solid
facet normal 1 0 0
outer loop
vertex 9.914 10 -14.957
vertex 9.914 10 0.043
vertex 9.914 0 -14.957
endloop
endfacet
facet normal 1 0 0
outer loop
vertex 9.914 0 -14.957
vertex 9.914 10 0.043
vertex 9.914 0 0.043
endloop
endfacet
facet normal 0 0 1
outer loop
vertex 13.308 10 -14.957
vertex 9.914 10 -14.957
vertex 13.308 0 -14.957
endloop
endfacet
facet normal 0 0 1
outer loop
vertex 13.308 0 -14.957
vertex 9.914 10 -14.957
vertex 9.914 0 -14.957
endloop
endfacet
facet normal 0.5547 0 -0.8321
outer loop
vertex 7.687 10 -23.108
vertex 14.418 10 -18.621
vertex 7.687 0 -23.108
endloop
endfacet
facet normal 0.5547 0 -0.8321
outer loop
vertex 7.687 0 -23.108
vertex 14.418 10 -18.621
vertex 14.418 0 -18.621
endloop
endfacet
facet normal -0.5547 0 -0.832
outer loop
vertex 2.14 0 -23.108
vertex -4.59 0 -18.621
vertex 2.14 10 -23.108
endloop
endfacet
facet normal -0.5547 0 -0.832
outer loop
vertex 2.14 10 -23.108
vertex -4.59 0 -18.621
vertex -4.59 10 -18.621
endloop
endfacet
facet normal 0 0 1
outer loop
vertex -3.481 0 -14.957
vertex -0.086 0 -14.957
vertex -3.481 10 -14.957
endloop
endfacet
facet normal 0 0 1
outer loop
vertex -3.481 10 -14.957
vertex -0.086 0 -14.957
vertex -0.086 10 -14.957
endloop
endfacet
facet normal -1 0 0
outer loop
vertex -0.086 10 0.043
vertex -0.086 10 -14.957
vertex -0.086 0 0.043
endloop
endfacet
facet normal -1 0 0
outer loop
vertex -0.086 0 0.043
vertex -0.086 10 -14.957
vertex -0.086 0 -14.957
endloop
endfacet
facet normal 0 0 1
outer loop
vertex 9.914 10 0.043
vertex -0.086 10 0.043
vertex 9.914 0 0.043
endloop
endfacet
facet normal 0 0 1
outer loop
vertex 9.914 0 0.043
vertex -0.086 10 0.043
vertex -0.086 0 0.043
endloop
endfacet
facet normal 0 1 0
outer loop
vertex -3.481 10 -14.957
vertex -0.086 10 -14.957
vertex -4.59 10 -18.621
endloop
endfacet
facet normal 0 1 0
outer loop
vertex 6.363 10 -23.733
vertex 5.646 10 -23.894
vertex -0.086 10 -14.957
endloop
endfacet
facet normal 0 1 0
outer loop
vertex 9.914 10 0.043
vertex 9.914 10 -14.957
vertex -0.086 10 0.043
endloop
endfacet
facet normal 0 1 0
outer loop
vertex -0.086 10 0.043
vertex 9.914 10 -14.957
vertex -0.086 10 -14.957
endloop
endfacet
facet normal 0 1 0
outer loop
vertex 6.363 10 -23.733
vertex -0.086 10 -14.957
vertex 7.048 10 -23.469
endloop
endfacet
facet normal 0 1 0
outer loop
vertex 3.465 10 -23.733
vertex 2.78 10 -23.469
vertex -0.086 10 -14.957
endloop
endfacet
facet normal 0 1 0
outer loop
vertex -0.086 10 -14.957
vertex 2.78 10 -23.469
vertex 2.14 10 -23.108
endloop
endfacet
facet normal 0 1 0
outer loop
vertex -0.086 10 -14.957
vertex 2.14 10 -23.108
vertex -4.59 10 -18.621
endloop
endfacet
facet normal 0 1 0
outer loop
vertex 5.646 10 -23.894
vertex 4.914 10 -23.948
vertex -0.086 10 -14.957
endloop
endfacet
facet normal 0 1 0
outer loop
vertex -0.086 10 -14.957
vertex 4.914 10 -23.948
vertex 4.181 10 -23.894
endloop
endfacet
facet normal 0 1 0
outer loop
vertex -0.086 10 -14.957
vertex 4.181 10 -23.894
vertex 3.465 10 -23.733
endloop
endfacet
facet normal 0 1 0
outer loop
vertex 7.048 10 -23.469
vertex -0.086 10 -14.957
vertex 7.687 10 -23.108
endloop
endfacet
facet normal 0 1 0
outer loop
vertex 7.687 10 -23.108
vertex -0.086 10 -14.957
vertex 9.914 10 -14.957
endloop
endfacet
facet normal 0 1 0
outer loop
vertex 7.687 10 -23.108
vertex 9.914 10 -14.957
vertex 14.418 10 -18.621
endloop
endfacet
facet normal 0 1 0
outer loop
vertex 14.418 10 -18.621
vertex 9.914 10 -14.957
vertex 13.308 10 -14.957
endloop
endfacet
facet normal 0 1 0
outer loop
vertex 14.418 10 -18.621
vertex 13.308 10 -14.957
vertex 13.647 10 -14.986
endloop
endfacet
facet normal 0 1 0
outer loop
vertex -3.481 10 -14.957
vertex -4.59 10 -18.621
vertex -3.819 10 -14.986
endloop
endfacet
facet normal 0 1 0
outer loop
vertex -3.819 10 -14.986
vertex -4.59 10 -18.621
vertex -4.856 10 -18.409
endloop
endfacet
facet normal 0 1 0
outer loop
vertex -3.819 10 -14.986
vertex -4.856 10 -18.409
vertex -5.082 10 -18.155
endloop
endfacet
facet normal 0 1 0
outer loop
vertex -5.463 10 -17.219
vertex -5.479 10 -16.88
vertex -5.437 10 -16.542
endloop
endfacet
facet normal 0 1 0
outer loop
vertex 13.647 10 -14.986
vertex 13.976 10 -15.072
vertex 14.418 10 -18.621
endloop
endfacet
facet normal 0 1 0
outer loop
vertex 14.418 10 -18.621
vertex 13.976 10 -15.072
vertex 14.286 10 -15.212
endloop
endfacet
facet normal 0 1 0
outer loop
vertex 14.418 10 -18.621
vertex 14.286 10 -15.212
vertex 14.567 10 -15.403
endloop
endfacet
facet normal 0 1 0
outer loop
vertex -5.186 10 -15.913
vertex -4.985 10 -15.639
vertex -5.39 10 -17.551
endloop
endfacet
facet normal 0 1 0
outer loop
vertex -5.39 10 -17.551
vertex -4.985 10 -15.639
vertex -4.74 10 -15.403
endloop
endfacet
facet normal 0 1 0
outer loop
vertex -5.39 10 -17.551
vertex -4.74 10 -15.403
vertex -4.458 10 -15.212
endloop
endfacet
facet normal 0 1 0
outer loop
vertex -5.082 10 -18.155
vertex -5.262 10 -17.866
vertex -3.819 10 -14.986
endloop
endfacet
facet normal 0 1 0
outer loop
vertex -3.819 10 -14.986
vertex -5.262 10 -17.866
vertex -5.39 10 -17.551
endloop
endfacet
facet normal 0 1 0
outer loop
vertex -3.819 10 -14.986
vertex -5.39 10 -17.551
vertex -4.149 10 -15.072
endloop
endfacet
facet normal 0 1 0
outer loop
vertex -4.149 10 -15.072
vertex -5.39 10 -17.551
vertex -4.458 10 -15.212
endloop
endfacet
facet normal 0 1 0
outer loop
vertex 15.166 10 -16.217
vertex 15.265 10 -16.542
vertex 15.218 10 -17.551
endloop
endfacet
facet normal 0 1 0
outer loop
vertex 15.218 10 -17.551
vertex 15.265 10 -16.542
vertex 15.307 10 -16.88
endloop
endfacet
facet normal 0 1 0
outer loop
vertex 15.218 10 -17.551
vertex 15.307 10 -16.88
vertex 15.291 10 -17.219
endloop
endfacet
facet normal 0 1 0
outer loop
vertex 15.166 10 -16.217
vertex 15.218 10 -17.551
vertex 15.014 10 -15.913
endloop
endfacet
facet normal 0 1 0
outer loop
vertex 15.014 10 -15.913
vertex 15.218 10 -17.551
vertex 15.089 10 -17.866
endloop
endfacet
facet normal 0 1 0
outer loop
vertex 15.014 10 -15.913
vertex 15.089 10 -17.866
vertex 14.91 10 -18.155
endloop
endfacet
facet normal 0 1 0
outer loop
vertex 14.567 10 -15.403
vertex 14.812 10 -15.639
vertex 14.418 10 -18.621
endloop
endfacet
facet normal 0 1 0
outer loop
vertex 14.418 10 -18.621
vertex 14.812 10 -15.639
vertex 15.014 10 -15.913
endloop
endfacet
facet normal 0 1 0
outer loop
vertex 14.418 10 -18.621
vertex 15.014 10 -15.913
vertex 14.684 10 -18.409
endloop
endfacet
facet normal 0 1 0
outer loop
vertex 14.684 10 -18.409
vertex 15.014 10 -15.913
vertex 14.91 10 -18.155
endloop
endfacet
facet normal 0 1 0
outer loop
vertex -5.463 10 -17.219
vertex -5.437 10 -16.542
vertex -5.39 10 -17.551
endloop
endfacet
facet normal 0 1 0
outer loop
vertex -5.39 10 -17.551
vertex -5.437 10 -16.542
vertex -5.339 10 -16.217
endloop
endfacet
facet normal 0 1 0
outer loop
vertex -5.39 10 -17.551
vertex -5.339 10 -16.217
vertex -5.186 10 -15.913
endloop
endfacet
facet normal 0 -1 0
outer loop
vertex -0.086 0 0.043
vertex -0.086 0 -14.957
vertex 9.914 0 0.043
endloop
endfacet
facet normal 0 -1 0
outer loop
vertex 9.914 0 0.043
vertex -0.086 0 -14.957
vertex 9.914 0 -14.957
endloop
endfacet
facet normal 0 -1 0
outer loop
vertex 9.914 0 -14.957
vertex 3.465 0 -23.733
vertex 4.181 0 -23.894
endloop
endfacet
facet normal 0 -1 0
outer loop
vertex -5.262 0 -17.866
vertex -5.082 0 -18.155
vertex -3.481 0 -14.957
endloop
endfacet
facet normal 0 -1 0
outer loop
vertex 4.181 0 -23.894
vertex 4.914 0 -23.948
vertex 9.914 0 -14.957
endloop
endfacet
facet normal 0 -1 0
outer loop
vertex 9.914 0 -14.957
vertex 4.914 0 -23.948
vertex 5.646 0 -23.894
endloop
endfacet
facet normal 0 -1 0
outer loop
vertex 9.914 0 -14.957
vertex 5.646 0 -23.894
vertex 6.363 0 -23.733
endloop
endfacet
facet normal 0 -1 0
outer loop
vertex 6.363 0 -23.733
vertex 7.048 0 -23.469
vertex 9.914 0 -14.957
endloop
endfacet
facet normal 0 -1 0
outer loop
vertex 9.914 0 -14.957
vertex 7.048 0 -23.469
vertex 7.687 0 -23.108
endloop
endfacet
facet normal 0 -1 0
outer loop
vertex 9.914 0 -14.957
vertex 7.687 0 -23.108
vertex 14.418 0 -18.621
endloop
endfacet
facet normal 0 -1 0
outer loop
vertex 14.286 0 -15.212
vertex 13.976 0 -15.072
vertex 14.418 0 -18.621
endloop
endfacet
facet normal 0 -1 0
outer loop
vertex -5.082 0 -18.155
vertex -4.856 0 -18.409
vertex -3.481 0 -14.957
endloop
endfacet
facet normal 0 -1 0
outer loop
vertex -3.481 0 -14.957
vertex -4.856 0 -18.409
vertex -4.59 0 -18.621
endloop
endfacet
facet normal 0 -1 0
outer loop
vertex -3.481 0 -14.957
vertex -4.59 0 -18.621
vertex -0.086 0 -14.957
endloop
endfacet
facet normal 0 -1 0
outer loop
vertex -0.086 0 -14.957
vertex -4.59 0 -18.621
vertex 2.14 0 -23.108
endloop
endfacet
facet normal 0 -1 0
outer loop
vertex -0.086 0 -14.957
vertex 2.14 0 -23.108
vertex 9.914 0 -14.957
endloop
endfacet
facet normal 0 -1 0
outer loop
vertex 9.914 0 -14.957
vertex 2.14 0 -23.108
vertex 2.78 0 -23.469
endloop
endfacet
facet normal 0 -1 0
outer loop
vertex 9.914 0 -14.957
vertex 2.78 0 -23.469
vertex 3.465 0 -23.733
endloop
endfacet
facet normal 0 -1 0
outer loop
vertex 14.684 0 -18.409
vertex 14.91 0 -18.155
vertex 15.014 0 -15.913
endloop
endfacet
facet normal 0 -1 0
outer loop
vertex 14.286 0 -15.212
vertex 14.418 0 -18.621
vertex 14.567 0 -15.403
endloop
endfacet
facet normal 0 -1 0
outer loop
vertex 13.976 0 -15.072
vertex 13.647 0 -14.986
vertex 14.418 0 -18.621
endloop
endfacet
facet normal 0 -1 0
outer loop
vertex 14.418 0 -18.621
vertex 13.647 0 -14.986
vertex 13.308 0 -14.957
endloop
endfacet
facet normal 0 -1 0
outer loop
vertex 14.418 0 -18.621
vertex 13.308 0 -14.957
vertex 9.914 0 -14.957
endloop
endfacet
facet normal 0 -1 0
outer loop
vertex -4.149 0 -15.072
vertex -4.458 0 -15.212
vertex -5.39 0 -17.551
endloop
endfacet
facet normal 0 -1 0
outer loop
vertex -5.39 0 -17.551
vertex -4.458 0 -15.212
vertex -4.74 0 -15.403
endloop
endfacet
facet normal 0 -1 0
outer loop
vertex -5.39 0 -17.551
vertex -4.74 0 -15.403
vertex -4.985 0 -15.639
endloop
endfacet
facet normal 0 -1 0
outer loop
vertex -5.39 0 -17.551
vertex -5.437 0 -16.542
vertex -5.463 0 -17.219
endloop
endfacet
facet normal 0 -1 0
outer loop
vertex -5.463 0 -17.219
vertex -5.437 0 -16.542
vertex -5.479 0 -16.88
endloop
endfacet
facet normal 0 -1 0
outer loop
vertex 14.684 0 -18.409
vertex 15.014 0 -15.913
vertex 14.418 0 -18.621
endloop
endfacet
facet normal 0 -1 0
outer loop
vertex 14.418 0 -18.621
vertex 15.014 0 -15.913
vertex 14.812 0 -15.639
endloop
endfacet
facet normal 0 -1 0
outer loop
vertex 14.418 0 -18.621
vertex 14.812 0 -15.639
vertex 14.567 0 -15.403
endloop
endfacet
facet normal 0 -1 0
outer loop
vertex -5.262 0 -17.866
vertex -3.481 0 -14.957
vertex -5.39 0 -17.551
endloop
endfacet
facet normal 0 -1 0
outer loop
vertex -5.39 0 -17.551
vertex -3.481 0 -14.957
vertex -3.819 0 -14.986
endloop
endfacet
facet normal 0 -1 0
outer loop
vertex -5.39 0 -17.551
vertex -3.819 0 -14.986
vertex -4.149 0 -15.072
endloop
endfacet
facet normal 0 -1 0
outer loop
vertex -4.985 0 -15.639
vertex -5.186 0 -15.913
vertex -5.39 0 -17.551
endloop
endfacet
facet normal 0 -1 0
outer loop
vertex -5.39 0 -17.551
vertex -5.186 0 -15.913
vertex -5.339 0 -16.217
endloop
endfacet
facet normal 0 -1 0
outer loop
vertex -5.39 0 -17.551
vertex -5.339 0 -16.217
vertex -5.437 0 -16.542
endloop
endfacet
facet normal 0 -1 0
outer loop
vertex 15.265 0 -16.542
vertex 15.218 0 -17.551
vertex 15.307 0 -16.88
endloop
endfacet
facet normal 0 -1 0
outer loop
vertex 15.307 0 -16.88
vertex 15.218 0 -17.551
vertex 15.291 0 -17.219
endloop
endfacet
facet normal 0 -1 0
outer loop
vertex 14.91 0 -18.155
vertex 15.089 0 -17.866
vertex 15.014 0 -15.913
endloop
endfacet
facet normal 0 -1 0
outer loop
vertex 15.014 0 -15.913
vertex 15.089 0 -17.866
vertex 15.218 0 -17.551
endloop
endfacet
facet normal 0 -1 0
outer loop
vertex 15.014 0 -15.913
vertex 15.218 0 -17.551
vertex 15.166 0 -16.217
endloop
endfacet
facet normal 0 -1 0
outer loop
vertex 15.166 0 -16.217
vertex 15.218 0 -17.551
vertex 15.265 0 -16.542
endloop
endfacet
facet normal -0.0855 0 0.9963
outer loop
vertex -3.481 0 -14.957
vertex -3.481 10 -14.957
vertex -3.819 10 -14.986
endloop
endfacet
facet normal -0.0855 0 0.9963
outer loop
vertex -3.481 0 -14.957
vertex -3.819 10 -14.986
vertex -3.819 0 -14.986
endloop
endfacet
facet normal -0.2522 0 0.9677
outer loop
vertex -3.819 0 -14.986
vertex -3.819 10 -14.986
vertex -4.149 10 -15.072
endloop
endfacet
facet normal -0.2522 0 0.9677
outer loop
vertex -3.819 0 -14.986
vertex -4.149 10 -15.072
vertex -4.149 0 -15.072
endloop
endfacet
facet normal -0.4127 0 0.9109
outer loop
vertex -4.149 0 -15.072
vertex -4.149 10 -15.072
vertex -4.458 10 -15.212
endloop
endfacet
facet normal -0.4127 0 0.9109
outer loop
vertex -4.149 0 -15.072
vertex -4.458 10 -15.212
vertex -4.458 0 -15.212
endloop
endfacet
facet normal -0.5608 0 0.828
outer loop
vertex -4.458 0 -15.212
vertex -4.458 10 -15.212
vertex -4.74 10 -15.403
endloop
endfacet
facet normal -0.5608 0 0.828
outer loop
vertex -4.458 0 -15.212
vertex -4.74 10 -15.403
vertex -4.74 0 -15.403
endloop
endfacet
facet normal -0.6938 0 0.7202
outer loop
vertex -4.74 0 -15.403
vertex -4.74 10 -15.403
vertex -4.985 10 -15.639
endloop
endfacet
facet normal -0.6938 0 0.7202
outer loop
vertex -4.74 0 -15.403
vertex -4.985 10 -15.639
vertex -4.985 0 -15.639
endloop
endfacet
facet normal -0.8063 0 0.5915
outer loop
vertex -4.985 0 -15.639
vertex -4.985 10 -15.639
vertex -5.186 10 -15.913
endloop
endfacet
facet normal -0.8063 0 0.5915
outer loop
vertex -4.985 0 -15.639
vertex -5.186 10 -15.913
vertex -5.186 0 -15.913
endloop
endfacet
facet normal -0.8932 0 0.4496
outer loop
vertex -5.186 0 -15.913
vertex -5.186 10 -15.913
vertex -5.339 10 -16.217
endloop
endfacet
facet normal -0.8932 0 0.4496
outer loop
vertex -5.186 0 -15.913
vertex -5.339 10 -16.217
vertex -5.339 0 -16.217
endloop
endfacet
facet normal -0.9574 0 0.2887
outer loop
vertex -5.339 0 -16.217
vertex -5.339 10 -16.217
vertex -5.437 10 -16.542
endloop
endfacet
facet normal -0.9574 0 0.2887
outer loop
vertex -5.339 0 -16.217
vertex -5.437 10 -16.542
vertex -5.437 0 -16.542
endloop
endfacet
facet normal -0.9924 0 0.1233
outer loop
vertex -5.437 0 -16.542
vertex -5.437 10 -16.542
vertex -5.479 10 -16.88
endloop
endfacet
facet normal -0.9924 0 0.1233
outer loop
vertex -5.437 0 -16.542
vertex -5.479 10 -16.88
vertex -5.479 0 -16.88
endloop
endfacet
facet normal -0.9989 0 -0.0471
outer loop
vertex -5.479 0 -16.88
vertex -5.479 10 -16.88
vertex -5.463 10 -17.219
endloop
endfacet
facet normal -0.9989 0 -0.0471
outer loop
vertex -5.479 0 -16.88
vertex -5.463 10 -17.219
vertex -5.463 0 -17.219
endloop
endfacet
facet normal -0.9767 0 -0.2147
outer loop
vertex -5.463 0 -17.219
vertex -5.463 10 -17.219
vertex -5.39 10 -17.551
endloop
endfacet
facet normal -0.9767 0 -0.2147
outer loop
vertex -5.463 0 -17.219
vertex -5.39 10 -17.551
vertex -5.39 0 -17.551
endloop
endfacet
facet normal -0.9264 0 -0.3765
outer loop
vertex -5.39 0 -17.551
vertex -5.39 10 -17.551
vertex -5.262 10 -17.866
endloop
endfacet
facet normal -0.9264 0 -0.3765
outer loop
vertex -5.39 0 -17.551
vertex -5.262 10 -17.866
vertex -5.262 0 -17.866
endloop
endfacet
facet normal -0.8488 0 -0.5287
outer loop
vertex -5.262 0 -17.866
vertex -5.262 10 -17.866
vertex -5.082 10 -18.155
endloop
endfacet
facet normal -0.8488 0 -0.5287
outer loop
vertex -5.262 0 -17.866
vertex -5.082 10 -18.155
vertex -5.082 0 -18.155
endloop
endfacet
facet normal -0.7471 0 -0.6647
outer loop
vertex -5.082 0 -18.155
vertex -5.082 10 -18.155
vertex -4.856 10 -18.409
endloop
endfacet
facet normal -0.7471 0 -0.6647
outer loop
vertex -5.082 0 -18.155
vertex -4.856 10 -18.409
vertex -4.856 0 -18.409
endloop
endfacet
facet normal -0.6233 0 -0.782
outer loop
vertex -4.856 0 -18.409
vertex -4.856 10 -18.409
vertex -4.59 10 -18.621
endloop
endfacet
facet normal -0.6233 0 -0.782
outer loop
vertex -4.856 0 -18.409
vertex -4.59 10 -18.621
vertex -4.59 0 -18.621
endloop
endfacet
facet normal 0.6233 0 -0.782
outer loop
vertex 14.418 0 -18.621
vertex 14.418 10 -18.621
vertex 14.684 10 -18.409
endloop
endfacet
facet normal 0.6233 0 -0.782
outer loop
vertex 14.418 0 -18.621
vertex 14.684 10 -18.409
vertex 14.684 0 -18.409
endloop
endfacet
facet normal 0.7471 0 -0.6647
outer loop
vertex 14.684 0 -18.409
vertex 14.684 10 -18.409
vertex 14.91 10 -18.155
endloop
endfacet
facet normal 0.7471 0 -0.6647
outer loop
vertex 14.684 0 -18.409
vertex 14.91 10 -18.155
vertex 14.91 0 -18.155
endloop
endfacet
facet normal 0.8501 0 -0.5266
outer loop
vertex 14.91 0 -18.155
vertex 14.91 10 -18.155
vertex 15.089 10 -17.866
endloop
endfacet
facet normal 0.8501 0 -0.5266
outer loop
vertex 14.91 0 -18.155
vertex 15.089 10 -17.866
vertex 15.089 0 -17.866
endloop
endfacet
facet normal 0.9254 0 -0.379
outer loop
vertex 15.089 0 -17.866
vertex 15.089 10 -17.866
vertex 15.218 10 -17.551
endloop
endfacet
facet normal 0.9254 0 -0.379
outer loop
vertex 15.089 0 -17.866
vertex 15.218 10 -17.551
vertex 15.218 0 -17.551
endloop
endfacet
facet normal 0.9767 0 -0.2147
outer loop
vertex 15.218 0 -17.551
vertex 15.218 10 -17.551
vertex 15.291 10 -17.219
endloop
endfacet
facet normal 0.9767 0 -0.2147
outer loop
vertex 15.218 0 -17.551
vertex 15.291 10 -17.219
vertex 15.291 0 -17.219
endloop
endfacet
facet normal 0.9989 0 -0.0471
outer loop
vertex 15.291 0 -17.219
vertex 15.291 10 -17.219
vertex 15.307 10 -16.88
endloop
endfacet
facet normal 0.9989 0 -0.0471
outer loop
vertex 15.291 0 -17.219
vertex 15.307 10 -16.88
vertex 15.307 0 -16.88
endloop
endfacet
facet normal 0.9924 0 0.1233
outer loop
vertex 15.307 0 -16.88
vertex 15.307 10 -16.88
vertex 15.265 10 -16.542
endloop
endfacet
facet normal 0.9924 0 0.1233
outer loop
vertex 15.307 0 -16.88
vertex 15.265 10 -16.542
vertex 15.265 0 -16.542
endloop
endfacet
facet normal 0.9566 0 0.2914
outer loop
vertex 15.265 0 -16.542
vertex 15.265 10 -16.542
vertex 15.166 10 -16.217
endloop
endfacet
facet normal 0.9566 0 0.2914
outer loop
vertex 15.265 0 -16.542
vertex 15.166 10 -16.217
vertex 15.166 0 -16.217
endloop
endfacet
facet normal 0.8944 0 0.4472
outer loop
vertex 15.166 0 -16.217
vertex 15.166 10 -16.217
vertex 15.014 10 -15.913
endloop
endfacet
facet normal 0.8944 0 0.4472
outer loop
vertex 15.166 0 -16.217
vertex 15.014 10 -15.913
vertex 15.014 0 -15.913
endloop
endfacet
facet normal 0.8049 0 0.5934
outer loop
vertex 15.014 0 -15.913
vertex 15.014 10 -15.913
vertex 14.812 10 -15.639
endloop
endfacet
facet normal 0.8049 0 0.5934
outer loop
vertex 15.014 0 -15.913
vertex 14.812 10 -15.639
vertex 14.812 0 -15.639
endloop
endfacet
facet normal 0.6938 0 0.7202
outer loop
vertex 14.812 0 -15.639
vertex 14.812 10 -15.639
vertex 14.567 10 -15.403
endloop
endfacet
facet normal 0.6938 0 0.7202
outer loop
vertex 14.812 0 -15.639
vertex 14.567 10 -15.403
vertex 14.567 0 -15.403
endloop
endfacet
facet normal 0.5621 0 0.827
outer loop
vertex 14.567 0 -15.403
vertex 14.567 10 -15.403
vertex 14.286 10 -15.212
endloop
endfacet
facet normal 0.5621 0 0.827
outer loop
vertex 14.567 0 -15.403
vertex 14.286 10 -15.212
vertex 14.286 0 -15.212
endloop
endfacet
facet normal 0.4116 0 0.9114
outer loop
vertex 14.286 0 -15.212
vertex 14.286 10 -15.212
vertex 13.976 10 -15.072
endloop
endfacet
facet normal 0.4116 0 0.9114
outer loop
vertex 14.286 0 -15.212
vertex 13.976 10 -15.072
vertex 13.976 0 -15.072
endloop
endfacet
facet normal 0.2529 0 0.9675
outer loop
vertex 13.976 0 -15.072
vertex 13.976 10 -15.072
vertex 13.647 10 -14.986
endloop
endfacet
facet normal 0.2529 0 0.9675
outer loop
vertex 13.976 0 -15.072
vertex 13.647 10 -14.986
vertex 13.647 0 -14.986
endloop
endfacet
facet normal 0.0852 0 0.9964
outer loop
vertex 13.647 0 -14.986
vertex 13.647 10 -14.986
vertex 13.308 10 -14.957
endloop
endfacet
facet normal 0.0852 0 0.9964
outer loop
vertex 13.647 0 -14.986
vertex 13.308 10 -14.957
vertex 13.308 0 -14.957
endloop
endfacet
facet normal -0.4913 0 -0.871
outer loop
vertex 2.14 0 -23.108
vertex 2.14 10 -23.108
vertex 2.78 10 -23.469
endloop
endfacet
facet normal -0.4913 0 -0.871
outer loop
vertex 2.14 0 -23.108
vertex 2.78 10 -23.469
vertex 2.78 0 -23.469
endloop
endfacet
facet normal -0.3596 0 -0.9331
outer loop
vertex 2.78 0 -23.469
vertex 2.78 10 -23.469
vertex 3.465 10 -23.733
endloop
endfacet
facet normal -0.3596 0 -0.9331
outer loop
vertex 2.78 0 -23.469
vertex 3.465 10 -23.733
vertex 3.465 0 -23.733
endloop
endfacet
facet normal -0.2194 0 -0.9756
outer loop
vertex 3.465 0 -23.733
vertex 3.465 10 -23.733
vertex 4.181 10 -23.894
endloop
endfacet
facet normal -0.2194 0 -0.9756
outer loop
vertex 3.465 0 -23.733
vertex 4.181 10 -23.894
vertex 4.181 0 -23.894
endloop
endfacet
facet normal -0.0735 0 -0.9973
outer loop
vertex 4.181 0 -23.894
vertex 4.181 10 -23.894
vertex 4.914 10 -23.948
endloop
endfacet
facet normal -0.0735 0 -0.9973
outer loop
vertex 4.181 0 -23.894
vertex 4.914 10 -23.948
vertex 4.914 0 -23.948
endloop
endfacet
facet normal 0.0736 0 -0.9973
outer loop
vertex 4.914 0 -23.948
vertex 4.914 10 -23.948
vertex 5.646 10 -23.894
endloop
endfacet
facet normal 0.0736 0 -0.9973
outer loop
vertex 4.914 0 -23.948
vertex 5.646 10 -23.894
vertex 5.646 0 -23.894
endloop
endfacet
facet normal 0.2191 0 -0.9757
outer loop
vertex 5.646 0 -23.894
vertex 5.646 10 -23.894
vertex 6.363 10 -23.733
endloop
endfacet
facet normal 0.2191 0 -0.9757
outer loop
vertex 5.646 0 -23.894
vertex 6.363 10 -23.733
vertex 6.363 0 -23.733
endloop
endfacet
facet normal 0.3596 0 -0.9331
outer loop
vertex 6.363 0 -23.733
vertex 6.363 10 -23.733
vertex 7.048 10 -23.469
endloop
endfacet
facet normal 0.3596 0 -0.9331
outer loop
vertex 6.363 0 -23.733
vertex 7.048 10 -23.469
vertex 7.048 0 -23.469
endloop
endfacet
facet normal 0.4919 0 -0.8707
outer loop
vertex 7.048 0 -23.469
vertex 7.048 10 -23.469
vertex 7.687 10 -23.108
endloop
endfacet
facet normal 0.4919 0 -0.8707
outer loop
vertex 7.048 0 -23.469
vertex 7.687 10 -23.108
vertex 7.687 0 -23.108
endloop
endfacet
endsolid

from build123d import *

# Parameters (mm, degrees)
SKETCH1_W           = 10
SKETCH1_H           = 15
BOSS_EXTRUDE1_DEPTH = 10
FILLET1_R           = 2
FILLET2_R           = 5


with BuildPart() as part:
    # Sketch1 → Boss-Extrude1 (new body)
    with BuildSketch(Plane(origin=(0, 0, 0), x_dir=(1, 0, 0), z_dir=(0, 1, 0))):
        with Locations((4.913793103, 7.456896552)):
            Rectangle(SKETCH1_W, SKETCH1_H)
        Polygon((19.913793103, 14.956896552), (4.913793103, 24.956896552), (4.913793103, 14.956896552), (9.913793103, 14.956896552), align=None)
        Polygon((4.913793103, 24.956896552), (-10.086206897, 14.956896552), (-0.086206897, 14.956896552), (4.913793103, 14.956896552), align=None)
    extrude(amount=BOSS_EXTRUDE1_DEPTH)

    # Fillet1
    fillet1_edges = [part.edges().sort_by_distance(p)[0] for p in [
        (-10.086206897, 5, -14.956896552),
        (19.913793103, 5, -14.956896552),
    ]]
    fillet(fillet1_edges, radius=FILLET1_R)

    # Fillet2
    fillet2_edges = [part.edges().sort_by_distance(p)[0] for p in [
        (4.913793103, 5, -24.956896552),
    ]]
    fillet(fillet2_edges, radius=FILLET2_R)


solid = part.part
